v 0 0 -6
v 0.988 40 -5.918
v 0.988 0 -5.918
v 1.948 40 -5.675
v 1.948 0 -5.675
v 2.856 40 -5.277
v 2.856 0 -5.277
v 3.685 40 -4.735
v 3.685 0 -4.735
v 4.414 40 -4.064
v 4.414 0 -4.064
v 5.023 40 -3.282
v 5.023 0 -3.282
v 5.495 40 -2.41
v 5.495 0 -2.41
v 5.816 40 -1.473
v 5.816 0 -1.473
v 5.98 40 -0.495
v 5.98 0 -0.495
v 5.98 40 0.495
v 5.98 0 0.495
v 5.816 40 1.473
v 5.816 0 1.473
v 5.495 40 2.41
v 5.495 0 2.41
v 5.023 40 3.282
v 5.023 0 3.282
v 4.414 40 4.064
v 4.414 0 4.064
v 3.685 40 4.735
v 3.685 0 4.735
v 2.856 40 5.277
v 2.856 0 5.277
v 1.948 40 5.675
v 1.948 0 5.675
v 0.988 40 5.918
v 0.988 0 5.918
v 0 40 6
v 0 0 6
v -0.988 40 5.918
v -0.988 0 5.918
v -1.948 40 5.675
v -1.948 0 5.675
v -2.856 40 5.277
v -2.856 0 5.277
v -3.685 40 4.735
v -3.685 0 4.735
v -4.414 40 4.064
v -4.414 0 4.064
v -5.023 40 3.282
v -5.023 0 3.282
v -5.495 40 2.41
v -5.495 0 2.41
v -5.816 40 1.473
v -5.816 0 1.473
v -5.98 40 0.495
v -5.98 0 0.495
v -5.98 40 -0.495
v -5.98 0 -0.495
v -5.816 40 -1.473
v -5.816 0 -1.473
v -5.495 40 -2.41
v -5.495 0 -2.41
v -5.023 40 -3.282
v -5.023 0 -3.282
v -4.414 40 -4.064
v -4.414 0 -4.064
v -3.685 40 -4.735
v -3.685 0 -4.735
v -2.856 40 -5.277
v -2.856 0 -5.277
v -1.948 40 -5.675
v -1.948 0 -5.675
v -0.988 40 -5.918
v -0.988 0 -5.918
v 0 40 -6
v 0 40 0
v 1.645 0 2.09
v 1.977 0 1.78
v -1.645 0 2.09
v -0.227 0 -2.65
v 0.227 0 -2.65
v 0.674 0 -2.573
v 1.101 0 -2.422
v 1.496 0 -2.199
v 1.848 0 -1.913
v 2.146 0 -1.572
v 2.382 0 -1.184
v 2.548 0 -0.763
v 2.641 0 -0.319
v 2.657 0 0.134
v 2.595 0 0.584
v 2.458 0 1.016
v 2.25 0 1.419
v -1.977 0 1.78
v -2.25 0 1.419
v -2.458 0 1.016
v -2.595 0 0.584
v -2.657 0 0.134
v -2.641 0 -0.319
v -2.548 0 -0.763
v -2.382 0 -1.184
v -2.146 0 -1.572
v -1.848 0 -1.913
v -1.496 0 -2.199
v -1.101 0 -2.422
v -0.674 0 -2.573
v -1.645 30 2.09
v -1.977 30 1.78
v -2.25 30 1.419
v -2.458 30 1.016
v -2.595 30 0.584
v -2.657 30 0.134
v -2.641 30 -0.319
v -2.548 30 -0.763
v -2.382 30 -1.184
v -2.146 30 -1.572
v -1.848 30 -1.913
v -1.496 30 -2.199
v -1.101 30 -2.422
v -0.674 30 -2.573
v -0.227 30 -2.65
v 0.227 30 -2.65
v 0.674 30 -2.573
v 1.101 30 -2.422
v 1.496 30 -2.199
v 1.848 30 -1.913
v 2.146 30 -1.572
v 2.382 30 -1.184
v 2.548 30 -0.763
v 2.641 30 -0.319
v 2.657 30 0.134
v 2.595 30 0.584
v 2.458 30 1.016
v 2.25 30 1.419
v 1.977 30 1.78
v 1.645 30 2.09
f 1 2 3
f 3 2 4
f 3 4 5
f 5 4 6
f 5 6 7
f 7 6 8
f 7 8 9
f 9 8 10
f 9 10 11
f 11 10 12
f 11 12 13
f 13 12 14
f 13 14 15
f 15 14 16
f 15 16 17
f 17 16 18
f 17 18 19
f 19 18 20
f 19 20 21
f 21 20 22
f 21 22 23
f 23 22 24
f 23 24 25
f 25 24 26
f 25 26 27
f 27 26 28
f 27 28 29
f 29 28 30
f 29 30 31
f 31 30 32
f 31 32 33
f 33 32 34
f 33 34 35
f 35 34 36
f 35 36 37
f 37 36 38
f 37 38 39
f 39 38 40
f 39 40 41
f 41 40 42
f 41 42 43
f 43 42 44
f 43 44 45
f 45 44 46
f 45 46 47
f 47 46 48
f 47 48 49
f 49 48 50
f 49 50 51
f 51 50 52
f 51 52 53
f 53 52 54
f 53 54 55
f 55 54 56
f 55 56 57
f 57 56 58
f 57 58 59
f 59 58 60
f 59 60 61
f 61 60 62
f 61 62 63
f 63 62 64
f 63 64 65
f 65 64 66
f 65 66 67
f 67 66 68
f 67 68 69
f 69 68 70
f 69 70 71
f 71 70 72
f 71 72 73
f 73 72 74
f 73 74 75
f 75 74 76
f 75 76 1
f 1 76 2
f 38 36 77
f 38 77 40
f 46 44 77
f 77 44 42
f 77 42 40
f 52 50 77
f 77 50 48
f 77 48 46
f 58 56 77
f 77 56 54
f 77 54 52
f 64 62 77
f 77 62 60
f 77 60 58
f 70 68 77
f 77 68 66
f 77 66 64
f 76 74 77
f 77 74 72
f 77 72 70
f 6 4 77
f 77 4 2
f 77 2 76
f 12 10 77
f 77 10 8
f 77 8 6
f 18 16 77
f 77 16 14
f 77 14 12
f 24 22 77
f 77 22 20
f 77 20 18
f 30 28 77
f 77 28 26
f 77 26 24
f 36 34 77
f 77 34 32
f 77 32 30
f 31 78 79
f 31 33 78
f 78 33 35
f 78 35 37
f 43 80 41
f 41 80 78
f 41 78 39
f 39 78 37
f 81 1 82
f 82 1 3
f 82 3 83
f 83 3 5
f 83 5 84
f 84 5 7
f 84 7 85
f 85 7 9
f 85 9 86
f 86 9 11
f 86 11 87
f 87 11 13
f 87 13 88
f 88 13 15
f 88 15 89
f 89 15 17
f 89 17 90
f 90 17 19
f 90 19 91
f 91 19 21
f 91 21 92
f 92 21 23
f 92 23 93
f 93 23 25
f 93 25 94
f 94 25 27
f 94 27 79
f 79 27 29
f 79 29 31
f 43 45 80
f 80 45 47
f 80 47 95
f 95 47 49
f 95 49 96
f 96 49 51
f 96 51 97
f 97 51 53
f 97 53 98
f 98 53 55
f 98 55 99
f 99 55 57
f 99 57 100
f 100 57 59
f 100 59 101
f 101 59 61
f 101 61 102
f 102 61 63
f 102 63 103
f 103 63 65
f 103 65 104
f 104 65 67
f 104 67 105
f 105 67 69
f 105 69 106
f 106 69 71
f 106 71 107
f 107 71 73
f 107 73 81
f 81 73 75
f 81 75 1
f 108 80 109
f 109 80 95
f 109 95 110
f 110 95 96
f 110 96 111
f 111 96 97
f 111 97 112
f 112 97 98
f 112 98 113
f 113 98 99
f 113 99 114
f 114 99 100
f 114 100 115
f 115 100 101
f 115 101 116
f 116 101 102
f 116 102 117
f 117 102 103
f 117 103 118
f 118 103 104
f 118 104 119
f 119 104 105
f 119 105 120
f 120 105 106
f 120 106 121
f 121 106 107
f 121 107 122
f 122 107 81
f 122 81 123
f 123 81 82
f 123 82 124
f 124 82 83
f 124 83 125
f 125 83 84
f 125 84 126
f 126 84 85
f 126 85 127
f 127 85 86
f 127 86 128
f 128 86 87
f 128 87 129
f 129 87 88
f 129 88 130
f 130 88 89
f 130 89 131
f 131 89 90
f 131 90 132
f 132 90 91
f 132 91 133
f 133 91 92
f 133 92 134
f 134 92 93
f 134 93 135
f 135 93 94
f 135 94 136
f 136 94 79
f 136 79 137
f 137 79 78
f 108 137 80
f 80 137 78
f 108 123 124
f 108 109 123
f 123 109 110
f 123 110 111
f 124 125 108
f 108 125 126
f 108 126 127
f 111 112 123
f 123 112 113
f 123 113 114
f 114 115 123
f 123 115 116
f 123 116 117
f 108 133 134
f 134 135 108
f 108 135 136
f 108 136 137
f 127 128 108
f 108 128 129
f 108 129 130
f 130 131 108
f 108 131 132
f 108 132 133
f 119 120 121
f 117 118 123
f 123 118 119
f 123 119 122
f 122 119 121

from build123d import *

# Parameters (mm, degrees)
SKETCH1_R               = 6
BOSS_EXTRUDE1_DEPTH     = 40
CUT_EXTRUDE3_DEPTH      = 1
CUT_EXTRUDE3_DEPTH_BACK = 30


with BuildPart() as part:
    # Sketch1 → Boss-Extrude1 (new body)
    with BuildSketch(Plane(origin=(0, 0, 0), x_dir=(1, 0, 0), z_dir=(0, 1, 0))):
        Circle(SKETCH1_R)
    extrude(amount=BOSS_EXTRUDE1_DEPTH)

    # Sketch2 → Cut-Extrude3 (cut, two sides)
    with BuildSketch(Plane.XZ) as cut_extrude3_sk:
        with BuildLine():
            Line((1.645448267, 2.09), (-1.645448267, 2.09))
            ThreePointArc((-1.645448267, 2.09), (-1.161616892, -2.392957625), (2.66, 0))
            ThreePointArc((2.66, 0), (2.392957625, 1.161616892), (1.645448267, 2.09))
        make_face()
    extrude(amount=CUT_EXTRUDE3_DEPTH, mode=Mode.SUBTRACT)
    extrude(cut_extrude3_sk.sketch, amount=-CUT_EXTRUDE3_DEPTH_BACK, mode=Mode.SUBTRACT)


solid = part.part
